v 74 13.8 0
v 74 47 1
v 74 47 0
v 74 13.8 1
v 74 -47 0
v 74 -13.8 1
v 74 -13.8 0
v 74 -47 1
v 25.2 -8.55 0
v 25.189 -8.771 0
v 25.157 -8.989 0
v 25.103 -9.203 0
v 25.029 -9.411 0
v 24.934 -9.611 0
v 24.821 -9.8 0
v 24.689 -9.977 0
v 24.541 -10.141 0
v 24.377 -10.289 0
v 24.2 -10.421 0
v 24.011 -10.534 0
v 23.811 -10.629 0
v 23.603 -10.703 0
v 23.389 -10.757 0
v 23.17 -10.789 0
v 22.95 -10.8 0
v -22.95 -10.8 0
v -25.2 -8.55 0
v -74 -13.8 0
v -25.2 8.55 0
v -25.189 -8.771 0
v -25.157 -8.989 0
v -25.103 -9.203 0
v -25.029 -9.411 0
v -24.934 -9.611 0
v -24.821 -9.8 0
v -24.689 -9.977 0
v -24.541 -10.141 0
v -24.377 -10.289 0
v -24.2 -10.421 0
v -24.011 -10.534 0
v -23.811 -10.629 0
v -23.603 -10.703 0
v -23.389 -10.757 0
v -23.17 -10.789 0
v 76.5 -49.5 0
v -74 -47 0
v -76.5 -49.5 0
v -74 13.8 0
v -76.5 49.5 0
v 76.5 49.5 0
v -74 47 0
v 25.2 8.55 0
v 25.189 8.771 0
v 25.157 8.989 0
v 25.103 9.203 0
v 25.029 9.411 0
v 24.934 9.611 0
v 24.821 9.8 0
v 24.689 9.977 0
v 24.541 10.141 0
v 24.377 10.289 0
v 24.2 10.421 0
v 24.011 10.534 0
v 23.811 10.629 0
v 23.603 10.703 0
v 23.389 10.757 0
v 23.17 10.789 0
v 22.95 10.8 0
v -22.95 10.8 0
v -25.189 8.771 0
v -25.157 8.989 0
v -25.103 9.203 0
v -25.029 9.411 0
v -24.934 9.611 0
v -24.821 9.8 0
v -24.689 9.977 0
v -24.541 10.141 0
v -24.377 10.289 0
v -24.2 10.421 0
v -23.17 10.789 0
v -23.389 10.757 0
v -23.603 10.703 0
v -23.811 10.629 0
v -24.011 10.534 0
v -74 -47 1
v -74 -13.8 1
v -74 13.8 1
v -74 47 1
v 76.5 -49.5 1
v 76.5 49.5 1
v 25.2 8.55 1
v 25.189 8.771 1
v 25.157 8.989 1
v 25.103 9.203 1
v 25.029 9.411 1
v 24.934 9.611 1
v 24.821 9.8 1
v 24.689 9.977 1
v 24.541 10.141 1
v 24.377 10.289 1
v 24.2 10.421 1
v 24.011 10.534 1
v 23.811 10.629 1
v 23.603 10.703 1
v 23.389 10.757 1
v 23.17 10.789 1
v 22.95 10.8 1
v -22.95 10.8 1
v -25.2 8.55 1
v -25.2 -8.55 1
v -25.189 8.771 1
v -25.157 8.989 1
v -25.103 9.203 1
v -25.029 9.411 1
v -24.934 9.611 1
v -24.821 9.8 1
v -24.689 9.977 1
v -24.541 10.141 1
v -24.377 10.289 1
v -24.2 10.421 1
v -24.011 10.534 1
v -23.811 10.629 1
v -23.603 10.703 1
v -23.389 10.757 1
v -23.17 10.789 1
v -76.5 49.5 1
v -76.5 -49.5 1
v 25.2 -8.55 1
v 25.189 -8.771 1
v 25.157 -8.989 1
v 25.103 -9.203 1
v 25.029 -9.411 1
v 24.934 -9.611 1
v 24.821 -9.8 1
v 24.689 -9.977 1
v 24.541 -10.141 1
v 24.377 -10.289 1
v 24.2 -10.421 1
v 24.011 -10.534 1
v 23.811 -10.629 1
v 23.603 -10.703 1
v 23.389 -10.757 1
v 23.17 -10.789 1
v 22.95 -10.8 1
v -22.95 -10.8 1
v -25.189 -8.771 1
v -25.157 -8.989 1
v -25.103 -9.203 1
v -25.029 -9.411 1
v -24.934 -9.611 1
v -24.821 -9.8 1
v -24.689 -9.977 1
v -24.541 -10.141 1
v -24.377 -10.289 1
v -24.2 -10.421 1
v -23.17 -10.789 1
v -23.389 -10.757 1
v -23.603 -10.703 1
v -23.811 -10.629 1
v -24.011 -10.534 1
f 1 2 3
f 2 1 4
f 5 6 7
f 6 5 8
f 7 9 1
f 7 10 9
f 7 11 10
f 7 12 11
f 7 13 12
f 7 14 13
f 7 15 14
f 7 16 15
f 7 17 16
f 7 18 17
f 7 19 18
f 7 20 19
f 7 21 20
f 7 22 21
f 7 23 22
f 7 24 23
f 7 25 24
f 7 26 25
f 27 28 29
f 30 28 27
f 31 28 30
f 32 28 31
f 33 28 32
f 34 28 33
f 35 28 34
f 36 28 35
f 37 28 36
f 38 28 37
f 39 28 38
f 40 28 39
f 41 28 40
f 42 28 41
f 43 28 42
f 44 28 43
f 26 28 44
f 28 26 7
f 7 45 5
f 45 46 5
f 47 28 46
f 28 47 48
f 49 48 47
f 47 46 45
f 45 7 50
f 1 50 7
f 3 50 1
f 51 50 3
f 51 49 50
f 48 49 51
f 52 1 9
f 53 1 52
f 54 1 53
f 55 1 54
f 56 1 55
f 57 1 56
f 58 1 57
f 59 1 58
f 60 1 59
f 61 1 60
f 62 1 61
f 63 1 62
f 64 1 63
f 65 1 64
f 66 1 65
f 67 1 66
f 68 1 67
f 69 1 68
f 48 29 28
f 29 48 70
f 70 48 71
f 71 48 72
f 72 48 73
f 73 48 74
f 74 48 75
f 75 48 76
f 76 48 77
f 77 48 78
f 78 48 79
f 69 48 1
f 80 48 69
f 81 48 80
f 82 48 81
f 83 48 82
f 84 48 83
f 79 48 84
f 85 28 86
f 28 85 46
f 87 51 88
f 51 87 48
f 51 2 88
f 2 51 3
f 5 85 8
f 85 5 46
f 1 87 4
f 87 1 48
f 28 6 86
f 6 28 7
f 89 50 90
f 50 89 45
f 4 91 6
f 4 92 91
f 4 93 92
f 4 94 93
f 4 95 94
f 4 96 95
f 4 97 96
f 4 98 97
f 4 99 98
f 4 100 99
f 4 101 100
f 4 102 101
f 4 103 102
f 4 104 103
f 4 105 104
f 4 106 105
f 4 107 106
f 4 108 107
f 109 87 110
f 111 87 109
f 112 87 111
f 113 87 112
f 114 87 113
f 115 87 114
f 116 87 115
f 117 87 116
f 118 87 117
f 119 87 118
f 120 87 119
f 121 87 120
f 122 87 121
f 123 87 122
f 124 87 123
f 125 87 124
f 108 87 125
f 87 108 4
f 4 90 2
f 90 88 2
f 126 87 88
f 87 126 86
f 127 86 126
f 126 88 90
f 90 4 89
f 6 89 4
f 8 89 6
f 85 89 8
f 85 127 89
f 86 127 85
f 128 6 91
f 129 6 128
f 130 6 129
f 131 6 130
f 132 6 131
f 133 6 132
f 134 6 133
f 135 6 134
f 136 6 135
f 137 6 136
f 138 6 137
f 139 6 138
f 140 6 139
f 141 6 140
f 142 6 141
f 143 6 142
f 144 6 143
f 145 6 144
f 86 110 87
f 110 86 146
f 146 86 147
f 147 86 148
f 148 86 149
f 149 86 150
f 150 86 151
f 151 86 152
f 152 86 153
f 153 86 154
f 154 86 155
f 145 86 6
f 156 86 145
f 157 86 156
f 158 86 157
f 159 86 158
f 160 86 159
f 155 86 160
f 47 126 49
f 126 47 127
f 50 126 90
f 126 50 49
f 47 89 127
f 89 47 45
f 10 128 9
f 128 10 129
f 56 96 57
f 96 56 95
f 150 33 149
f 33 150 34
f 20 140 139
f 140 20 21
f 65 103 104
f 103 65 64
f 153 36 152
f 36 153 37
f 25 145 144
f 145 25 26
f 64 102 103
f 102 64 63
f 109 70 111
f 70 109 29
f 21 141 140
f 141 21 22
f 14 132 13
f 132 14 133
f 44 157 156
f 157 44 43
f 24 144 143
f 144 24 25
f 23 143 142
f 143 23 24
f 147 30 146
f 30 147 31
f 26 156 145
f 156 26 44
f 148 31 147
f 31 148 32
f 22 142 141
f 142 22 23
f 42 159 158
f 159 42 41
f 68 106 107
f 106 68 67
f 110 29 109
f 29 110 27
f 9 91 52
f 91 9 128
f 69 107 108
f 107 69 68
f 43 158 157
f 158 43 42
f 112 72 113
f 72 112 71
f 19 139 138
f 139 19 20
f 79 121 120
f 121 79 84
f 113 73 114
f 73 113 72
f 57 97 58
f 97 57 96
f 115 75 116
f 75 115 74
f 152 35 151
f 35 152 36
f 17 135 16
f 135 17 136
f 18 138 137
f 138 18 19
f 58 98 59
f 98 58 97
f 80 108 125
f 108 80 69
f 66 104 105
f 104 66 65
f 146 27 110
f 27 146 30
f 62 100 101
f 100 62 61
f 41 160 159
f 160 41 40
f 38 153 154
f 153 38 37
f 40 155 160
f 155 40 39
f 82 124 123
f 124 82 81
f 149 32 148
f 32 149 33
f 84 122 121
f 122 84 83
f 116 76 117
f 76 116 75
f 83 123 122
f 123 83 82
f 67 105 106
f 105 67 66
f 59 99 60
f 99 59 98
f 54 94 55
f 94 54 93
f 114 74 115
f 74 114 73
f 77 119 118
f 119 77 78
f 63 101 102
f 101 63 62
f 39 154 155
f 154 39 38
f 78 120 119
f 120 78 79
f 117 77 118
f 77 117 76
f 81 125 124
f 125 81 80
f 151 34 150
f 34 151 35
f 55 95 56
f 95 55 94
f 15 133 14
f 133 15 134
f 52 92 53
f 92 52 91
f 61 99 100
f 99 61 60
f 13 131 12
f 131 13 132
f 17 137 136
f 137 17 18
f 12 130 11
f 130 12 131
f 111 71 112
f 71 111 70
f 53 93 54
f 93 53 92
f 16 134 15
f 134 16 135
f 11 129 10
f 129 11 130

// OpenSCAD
S = 9.0;

module label(title) {
  cube_center([S*5.6,S*2.4,1], r=S/4, $fn=64);
}


difference() {
    cube_center([153,99,1]);
    difference() {
        cube_center([153-5,99-5,2]);
        cube_center([153,S*2.4+6,3]);
    }
    label();
}


module cube_center(dims,r=0,$fn=16) {
    if(r==0) {
        translate([-dims[0]/2, -dims[1]/2, 0])
        cube(dims);
    } else {
        minkowski() {
            translate([-(dims[0]-2*r)/2, -(dims[1]-2*r)/2, 0])
            cube([dims[0]-2*r,dims[1]-2*r,dims[2]]);
            cylinder(r=r,$fn=$fn,h=0.0001);
        }
   }
}
